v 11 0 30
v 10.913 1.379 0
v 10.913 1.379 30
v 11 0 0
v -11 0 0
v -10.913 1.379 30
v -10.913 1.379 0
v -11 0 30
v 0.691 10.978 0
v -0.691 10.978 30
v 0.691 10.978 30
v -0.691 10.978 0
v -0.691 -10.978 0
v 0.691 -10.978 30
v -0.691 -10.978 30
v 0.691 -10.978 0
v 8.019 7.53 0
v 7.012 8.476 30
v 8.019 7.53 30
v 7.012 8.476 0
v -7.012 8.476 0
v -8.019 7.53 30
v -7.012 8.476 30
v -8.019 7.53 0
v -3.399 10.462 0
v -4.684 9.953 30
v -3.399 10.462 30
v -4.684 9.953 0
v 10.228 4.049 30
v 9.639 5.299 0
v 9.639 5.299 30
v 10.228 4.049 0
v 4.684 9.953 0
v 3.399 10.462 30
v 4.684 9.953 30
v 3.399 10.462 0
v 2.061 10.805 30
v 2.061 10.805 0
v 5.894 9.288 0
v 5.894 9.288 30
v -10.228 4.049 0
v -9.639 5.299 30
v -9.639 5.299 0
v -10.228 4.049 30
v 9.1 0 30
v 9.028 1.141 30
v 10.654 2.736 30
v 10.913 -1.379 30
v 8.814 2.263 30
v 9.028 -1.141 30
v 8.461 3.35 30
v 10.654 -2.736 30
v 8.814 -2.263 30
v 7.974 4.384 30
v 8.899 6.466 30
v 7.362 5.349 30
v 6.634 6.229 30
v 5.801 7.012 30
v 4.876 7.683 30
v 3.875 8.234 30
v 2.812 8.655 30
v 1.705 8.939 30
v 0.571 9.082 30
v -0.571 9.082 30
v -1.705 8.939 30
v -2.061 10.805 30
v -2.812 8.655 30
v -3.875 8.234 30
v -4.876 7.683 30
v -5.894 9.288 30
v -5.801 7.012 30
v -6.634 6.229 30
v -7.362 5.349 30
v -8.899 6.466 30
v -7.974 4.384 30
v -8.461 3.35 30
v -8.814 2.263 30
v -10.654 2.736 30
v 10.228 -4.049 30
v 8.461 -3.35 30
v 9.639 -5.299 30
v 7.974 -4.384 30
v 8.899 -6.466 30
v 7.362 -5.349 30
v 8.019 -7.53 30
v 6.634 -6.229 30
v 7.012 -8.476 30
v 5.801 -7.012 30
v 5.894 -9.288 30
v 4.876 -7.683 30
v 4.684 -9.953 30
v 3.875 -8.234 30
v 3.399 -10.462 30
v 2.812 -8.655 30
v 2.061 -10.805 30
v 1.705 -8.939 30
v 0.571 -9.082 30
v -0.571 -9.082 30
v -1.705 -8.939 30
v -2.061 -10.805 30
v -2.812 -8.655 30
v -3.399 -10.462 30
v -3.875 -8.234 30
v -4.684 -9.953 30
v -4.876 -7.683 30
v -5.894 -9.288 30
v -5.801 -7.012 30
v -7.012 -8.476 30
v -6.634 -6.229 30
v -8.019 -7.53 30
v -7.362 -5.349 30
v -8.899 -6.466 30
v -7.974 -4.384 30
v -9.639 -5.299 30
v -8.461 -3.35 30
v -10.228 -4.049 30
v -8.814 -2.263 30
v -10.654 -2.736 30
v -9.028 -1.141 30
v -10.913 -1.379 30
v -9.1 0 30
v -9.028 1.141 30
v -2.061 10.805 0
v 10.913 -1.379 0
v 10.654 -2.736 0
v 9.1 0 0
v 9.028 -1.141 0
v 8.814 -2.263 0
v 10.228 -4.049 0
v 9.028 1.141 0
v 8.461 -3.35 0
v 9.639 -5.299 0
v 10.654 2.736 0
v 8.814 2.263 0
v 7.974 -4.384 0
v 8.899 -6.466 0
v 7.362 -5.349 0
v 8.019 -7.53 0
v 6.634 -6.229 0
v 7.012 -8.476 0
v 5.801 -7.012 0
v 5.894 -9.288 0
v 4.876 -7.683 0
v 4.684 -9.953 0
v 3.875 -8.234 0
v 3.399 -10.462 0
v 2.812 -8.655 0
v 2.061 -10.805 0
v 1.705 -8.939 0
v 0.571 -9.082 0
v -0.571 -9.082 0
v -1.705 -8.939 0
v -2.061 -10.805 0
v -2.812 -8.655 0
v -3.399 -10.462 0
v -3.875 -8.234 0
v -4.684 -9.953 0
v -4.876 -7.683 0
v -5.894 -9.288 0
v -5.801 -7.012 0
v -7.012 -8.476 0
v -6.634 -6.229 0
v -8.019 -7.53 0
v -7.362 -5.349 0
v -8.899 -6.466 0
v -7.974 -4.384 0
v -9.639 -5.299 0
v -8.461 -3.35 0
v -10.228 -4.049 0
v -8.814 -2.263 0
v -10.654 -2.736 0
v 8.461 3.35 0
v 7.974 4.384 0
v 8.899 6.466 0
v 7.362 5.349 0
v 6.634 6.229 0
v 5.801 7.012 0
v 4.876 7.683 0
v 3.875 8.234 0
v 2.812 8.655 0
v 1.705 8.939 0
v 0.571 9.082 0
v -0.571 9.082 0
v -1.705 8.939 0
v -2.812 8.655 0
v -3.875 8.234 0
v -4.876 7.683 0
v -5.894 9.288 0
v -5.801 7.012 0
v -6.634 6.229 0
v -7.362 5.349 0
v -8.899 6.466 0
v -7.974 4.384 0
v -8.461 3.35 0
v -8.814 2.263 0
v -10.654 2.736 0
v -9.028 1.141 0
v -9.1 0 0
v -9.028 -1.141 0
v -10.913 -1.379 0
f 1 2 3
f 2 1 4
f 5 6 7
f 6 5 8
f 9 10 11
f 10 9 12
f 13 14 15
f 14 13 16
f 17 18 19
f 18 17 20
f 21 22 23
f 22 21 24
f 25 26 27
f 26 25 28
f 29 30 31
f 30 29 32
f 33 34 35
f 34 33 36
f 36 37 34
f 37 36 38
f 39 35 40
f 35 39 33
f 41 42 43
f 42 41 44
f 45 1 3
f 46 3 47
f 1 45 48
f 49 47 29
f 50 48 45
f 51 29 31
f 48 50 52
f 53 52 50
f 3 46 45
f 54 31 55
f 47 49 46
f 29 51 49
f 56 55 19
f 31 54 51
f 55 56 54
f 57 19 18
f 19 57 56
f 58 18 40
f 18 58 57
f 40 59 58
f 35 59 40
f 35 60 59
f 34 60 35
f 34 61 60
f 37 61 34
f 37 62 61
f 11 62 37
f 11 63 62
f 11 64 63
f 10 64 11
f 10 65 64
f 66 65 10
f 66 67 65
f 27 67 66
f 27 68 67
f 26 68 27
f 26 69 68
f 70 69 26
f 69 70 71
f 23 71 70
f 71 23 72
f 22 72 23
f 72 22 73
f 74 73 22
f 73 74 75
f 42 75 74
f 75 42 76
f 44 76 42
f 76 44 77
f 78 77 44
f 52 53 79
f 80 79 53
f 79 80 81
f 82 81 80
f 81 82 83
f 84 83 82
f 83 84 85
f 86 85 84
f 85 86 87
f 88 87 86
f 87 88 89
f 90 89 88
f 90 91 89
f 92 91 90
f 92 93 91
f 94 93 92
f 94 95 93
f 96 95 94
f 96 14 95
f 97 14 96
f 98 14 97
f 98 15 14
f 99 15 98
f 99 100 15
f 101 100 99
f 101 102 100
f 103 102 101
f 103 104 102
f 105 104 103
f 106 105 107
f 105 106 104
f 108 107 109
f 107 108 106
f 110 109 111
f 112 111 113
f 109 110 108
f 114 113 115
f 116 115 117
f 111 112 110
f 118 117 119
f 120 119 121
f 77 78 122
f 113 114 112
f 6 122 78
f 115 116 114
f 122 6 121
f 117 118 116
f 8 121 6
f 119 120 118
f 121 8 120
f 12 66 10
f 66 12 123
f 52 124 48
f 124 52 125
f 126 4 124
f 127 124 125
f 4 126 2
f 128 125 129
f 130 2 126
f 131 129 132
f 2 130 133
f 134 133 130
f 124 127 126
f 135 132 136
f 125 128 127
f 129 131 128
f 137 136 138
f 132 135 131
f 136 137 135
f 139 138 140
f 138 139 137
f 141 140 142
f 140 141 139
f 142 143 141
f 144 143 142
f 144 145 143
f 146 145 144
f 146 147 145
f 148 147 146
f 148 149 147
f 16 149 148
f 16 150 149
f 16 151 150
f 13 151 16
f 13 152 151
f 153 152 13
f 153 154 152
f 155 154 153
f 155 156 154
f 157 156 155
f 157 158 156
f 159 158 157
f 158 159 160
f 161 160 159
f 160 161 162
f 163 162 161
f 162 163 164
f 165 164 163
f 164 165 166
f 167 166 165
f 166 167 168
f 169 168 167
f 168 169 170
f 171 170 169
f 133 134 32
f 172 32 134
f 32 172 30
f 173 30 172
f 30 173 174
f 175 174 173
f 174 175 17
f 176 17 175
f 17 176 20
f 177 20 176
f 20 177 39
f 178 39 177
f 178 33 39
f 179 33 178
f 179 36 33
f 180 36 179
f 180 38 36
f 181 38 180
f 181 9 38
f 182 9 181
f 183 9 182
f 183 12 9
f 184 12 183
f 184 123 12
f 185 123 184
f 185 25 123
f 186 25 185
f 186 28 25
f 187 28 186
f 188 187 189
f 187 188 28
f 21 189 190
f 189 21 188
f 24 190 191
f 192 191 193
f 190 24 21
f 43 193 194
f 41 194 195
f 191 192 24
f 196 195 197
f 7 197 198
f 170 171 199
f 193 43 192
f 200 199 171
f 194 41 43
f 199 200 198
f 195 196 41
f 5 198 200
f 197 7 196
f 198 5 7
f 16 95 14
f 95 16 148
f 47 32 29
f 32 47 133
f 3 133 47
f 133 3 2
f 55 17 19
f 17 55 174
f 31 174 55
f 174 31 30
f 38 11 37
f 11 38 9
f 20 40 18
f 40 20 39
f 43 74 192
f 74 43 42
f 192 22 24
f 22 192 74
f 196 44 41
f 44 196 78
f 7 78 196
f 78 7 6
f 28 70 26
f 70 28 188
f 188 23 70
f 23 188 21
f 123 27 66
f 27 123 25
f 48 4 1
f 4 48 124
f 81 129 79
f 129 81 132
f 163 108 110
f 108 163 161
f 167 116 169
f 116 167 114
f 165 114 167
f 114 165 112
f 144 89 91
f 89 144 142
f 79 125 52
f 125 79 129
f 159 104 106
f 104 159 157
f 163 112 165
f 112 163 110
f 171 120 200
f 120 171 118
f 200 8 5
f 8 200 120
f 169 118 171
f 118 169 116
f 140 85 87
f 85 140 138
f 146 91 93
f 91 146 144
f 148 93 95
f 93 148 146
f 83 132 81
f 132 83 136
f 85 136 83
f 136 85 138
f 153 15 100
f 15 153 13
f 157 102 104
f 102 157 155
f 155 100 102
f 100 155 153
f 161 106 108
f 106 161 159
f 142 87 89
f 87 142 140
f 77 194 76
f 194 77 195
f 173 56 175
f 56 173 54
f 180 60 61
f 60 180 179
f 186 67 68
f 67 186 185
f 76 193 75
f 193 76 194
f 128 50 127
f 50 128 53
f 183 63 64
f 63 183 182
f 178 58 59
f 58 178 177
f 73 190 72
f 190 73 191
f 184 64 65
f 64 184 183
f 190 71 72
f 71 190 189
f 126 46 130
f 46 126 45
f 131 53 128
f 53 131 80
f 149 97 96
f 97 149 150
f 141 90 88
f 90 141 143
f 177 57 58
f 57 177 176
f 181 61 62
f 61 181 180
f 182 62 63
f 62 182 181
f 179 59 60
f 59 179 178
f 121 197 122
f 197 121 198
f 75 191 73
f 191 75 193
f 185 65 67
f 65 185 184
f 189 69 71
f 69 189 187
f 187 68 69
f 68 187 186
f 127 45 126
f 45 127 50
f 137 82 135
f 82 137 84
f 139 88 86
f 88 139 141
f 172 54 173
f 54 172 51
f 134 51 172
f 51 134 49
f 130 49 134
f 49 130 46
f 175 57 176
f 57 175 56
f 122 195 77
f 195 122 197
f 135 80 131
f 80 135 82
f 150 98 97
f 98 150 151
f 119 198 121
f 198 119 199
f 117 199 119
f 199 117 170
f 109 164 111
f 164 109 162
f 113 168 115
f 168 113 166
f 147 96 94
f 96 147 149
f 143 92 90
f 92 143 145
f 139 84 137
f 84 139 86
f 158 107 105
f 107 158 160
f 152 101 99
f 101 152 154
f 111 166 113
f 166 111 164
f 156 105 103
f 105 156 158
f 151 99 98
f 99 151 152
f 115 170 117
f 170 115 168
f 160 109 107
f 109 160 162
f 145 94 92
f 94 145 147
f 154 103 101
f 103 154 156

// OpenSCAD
// file: ../../../../shapes/open-cylinder/open-cylinder.scad
// // TODO: Lower this to 50.
module openCylinder(height = 3,
                    outerRadius = 7,
                    innerRadius = 4.5,
                    fn = 100)
{
echo("hi oc");    
    $fn = fn;

    difference()
    {
        cylinder(r=outerRadius,
                 h=height);

        translate([0, 0, -1])
        cylinder(r=innerRadius,
                 h=height+1.01);
    }
}
// main file
use <../../../../shapes/open-cylinder/open-cylinder.scad>

openCylinder(height = 30,
                    outerRadius = 11,
                    innerRadius = 9.1,
                    fn = 50);
